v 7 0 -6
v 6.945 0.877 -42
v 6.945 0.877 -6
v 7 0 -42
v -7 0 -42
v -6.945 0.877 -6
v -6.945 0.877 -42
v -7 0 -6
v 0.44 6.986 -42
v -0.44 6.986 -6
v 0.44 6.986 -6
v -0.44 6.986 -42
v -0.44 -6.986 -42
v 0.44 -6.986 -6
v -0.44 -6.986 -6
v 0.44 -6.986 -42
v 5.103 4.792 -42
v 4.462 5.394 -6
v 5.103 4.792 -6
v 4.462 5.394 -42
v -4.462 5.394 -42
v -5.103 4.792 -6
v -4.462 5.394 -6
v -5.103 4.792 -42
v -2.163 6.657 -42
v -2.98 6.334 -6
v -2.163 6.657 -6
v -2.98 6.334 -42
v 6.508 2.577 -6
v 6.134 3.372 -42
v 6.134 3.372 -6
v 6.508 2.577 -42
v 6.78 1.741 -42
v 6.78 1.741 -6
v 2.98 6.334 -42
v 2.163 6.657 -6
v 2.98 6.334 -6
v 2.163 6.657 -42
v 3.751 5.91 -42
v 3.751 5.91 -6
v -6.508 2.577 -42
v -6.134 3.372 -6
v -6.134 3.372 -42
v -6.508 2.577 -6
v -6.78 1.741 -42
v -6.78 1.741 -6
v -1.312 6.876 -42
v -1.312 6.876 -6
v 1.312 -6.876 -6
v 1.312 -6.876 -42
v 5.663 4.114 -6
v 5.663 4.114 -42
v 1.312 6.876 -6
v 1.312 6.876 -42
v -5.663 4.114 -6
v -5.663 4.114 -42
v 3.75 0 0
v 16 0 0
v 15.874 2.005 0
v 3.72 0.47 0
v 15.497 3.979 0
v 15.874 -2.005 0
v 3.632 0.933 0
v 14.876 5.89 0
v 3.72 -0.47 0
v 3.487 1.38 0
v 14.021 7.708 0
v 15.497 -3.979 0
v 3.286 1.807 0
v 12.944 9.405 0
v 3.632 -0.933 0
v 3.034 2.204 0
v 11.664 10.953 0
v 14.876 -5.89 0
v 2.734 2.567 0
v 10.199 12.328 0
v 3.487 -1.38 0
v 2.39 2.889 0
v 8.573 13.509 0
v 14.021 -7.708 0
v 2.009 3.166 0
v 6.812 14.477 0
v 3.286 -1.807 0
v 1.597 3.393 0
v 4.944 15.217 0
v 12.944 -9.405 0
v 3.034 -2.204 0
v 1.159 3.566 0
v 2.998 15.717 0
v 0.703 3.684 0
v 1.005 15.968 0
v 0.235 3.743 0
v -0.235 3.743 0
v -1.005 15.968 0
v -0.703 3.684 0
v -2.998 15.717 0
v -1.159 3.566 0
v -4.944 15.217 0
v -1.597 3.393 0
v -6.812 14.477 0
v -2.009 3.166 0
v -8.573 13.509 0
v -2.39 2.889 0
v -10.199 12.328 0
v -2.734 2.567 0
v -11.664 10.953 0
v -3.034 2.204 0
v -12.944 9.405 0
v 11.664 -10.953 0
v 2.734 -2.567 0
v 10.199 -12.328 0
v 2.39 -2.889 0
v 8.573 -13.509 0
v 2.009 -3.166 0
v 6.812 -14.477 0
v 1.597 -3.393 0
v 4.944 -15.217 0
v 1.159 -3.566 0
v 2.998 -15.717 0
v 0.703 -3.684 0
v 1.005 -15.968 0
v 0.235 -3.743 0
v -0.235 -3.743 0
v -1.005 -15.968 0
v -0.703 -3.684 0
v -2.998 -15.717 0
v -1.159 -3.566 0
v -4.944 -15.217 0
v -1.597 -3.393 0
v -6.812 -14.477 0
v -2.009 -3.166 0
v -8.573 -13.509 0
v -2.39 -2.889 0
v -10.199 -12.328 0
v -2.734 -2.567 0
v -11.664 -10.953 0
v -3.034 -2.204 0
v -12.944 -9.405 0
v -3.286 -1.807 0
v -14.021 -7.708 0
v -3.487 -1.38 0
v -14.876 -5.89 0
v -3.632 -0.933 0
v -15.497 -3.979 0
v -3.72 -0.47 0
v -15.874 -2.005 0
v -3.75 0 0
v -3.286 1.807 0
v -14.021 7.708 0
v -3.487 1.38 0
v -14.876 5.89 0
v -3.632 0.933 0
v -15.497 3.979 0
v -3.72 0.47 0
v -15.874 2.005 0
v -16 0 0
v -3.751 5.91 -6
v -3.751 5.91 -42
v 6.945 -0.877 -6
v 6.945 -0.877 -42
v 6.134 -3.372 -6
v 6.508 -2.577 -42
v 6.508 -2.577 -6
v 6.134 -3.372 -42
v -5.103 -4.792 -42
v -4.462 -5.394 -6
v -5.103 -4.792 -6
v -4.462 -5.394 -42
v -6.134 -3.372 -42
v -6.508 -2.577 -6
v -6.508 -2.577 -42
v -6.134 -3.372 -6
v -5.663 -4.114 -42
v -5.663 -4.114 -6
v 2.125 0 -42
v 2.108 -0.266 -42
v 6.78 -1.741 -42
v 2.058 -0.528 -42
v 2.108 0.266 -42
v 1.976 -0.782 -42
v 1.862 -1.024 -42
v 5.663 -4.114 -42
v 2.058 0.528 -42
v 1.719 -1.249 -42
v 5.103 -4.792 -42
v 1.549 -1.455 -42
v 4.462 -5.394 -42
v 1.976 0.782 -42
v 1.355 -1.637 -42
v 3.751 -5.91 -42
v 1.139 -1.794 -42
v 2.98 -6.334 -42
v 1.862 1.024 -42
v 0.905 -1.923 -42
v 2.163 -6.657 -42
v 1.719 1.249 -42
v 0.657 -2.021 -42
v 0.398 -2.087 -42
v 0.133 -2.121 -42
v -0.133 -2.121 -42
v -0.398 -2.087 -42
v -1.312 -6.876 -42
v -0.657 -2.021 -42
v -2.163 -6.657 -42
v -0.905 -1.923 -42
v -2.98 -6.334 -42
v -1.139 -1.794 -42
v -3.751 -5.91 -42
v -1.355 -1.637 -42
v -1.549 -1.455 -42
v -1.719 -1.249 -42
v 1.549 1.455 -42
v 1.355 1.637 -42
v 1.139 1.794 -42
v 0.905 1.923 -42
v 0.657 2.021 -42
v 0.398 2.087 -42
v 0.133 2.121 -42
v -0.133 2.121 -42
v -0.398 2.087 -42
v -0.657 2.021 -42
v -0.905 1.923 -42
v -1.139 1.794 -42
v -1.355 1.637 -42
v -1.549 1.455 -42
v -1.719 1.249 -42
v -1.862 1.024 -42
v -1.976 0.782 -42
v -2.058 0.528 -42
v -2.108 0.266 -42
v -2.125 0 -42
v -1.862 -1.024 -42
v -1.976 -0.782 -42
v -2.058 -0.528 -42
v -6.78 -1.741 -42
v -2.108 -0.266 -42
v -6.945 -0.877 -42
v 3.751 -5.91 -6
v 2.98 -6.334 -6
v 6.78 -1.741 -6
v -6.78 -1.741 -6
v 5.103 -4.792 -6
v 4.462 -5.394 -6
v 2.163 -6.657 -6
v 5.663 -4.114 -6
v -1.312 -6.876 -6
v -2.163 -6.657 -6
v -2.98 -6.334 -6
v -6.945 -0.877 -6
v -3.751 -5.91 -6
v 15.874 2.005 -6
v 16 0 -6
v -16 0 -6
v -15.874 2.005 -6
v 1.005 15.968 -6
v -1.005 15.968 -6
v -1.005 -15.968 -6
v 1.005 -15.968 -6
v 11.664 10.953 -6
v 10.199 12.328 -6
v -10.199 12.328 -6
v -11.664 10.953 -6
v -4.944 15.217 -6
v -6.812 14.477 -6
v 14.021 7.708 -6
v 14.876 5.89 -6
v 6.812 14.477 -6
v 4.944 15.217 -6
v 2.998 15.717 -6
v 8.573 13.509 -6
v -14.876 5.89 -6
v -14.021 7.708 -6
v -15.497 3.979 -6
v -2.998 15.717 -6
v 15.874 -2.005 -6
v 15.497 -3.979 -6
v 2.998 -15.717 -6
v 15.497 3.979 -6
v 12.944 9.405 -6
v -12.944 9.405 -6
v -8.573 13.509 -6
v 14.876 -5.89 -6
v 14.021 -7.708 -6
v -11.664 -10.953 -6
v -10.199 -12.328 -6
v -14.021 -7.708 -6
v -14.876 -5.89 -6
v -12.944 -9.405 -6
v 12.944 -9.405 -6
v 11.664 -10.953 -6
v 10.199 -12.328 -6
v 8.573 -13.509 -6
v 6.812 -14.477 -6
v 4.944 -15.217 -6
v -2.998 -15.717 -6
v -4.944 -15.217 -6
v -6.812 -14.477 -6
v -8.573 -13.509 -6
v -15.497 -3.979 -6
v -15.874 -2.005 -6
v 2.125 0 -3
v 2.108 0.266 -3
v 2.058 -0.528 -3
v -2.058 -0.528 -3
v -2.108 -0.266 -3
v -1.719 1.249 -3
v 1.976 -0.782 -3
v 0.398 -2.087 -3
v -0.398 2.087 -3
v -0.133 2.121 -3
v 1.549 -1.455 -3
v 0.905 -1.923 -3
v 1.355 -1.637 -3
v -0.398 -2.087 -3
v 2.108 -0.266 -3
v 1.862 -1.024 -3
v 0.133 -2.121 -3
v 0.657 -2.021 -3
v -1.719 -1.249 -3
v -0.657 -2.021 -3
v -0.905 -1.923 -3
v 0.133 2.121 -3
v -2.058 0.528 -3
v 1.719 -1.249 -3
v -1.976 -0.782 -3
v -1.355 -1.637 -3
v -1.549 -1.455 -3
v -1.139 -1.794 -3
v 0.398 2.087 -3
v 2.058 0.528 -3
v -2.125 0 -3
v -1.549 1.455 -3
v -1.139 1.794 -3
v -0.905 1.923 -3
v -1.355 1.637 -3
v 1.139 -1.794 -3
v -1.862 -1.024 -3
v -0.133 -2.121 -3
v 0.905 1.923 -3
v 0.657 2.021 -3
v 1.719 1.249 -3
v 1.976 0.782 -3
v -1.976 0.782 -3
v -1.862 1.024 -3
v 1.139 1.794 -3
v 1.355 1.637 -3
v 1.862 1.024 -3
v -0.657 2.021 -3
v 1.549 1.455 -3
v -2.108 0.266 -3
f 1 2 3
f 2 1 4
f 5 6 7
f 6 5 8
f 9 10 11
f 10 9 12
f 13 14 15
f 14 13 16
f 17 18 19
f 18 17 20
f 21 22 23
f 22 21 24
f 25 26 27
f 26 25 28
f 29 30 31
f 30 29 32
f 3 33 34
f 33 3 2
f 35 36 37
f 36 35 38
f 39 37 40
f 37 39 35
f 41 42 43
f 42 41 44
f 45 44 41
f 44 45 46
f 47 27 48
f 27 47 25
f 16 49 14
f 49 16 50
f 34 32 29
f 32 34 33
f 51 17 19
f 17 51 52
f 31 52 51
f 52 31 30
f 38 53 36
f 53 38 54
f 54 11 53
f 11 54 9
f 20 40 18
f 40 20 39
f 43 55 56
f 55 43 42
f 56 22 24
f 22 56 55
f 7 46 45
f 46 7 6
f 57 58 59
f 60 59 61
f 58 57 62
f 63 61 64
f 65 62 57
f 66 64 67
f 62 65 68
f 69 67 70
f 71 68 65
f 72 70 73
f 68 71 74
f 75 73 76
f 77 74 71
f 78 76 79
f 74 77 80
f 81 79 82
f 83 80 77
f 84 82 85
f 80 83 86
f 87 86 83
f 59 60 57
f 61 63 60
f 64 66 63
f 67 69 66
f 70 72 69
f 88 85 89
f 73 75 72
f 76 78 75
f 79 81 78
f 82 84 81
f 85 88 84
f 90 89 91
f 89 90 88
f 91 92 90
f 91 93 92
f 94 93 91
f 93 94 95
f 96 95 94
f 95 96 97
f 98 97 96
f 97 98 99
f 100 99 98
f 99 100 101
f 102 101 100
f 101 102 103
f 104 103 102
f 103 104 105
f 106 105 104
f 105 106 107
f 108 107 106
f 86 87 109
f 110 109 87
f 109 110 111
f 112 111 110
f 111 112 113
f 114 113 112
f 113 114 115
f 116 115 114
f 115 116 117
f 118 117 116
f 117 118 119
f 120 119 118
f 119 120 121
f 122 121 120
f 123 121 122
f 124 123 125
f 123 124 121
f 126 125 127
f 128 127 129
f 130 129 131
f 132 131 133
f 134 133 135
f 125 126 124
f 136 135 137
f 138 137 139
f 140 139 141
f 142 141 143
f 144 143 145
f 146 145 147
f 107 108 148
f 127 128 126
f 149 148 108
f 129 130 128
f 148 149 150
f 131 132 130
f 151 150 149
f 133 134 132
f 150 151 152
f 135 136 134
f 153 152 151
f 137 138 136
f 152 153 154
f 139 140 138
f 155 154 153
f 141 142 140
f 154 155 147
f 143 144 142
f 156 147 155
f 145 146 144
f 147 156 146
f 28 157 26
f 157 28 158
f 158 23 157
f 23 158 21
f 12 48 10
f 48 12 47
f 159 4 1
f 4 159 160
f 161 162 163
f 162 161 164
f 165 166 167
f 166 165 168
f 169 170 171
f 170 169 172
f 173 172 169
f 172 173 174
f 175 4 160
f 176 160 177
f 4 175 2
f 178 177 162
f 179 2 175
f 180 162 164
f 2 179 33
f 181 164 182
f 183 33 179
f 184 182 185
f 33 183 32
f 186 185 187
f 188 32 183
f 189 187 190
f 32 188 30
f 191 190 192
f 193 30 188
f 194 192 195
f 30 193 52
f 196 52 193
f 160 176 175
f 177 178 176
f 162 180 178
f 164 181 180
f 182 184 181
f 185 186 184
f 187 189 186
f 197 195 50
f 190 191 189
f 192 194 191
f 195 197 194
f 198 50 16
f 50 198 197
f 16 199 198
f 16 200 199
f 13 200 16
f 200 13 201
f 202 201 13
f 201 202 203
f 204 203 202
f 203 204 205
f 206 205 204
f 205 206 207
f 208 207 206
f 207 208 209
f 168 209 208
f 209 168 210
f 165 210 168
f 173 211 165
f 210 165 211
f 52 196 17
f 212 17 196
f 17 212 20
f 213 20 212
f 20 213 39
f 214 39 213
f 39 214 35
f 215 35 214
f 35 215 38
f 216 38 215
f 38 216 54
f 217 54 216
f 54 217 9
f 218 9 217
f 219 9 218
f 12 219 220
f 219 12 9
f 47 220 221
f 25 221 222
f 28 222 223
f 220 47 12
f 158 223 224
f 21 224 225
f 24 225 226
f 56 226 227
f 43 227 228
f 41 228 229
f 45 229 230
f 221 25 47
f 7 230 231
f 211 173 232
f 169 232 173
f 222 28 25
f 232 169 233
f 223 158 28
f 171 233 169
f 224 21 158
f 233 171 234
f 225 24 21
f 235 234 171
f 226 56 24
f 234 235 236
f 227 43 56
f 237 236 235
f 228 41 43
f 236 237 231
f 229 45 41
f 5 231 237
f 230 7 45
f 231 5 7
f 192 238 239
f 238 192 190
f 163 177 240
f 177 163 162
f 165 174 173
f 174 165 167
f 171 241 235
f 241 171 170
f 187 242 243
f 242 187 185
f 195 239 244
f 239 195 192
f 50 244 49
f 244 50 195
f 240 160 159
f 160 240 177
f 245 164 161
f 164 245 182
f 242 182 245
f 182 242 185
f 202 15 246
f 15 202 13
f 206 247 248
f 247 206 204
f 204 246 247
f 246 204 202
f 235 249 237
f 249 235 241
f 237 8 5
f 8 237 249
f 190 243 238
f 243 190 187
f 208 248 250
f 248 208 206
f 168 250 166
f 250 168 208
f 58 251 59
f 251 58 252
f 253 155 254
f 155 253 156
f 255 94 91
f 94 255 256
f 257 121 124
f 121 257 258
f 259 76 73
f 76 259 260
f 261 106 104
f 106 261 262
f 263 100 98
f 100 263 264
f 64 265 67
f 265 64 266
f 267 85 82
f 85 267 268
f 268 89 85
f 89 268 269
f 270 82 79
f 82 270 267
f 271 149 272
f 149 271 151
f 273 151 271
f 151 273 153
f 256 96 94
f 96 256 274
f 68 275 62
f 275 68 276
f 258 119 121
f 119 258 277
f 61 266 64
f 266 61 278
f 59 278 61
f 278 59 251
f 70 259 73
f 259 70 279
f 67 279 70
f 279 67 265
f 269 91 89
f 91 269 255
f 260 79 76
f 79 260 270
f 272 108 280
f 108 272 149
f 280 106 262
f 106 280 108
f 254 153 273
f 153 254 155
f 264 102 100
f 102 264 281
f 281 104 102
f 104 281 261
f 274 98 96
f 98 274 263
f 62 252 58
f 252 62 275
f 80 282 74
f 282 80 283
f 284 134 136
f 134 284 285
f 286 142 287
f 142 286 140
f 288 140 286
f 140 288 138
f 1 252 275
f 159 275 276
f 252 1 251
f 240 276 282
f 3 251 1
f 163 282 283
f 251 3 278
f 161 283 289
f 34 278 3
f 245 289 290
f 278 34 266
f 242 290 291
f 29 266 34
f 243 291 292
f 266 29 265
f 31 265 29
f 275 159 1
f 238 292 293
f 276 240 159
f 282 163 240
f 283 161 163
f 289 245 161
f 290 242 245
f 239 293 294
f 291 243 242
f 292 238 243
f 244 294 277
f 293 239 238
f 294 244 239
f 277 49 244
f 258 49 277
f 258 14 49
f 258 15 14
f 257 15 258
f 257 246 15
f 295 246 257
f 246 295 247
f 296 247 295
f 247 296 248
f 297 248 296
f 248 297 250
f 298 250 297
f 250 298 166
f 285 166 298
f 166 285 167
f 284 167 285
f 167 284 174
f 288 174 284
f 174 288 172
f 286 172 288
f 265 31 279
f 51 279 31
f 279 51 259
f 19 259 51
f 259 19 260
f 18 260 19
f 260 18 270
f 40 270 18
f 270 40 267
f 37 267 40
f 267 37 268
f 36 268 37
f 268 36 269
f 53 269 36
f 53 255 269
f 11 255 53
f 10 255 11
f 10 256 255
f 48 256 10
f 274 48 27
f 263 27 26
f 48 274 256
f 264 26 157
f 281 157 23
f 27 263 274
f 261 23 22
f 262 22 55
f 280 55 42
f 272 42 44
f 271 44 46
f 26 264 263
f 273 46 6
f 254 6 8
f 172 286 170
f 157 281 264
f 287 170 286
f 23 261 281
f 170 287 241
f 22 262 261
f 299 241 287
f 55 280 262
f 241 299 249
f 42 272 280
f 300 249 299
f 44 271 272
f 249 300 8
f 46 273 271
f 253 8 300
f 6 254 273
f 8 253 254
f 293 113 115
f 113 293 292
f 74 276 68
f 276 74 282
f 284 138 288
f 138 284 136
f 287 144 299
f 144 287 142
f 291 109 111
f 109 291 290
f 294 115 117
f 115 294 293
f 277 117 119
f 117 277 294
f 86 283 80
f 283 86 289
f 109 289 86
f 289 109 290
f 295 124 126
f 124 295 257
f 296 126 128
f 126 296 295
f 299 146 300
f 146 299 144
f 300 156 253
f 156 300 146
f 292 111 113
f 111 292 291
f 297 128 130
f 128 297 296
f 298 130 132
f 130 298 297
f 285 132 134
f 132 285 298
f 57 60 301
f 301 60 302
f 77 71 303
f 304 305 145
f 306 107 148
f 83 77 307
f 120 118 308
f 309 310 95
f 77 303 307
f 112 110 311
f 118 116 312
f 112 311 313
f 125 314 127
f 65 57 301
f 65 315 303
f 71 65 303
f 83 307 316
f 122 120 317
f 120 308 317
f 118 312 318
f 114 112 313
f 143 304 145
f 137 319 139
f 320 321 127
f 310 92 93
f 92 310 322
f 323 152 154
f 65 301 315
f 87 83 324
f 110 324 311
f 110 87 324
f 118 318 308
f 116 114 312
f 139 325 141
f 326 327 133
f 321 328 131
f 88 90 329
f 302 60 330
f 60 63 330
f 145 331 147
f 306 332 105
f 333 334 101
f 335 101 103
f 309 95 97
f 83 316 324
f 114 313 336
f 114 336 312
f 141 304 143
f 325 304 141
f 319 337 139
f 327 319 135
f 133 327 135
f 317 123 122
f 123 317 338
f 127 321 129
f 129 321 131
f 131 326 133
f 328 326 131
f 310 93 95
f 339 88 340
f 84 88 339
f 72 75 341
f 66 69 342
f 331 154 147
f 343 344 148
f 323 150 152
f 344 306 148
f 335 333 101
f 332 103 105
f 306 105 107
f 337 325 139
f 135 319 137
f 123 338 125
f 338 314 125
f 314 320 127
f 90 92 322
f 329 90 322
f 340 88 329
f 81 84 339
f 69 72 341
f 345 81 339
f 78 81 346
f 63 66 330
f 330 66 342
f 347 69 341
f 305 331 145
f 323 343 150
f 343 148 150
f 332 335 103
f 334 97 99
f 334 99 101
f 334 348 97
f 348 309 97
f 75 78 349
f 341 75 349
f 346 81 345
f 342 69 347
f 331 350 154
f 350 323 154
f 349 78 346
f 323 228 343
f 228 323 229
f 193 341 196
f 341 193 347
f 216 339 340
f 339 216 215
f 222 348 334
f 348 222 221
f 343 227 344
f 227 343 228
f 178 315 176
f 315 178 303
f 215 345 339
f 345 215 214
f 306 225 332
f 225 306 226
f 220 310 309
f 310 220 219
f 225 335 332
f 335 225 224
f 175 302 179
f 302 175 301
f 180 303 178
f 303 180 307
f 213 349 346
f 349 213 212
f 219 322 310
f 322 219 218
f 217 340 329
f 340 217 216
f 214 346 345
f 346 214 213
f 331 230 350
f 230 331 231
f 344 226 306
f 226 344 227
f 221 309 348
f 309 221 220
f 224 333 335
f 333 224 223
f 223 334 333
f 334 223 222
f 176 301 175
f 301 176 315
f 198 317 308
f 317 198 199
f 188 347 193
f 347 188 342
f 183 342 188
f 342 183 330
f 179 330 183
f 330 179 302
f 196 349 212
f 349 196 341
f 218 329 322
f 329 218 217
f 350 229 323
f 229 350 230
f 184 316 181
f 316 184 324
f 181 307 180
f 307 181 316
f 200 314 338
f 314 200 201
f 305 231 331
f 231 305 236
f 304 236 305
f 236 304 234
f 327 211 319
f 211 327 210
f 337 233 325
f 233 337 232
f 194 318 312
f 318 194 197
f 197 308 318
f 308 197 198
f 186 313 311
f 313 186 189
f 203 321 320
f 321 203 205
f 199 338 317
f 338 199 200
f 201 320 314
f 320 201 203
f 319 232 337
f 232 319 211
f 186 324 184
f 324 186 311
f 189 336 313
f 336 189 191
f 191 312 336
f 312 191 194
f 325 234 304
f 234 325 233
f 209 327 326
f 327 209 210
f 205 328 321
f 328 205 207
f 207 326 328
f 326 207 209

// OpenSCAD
$fn = 50;


difference() {
	union() {
		translate(v = [0, 0, -42.0000000000]) {
			cylinder(h = 42, r = 7.0000000000);
		}
		translate(v = [0, 0, -6.0000000000]) {
			cylinder(h = 6, r = 16.0000000000);
		}
	}
	union() {
		translate(v = [0, 0, 0]) {
			rotate(a = [0, 0, 0]) {
				difference() {
					union() {
						#translate(v = [0, 0, -42.0000000000]) {
							cylinder(h = 42, r = 2.0000000000);
						}
						#translate(v = [0, 0, -3]) {
							cylinder(h = 3, r1 = 2.1250000000, r2 = 3.7500000000);
						}
						#translate(v = [0, 0, -42.0000000000]) {
							cylinder(h = 42, r = 2.1250000000);
						}
						#translate(v = [0, 0, -42.0000000000]) {
							cylinder(h = 42, r = 2.0000000000);
						}
					}
					union();
				}
			}
		}
	}
}
